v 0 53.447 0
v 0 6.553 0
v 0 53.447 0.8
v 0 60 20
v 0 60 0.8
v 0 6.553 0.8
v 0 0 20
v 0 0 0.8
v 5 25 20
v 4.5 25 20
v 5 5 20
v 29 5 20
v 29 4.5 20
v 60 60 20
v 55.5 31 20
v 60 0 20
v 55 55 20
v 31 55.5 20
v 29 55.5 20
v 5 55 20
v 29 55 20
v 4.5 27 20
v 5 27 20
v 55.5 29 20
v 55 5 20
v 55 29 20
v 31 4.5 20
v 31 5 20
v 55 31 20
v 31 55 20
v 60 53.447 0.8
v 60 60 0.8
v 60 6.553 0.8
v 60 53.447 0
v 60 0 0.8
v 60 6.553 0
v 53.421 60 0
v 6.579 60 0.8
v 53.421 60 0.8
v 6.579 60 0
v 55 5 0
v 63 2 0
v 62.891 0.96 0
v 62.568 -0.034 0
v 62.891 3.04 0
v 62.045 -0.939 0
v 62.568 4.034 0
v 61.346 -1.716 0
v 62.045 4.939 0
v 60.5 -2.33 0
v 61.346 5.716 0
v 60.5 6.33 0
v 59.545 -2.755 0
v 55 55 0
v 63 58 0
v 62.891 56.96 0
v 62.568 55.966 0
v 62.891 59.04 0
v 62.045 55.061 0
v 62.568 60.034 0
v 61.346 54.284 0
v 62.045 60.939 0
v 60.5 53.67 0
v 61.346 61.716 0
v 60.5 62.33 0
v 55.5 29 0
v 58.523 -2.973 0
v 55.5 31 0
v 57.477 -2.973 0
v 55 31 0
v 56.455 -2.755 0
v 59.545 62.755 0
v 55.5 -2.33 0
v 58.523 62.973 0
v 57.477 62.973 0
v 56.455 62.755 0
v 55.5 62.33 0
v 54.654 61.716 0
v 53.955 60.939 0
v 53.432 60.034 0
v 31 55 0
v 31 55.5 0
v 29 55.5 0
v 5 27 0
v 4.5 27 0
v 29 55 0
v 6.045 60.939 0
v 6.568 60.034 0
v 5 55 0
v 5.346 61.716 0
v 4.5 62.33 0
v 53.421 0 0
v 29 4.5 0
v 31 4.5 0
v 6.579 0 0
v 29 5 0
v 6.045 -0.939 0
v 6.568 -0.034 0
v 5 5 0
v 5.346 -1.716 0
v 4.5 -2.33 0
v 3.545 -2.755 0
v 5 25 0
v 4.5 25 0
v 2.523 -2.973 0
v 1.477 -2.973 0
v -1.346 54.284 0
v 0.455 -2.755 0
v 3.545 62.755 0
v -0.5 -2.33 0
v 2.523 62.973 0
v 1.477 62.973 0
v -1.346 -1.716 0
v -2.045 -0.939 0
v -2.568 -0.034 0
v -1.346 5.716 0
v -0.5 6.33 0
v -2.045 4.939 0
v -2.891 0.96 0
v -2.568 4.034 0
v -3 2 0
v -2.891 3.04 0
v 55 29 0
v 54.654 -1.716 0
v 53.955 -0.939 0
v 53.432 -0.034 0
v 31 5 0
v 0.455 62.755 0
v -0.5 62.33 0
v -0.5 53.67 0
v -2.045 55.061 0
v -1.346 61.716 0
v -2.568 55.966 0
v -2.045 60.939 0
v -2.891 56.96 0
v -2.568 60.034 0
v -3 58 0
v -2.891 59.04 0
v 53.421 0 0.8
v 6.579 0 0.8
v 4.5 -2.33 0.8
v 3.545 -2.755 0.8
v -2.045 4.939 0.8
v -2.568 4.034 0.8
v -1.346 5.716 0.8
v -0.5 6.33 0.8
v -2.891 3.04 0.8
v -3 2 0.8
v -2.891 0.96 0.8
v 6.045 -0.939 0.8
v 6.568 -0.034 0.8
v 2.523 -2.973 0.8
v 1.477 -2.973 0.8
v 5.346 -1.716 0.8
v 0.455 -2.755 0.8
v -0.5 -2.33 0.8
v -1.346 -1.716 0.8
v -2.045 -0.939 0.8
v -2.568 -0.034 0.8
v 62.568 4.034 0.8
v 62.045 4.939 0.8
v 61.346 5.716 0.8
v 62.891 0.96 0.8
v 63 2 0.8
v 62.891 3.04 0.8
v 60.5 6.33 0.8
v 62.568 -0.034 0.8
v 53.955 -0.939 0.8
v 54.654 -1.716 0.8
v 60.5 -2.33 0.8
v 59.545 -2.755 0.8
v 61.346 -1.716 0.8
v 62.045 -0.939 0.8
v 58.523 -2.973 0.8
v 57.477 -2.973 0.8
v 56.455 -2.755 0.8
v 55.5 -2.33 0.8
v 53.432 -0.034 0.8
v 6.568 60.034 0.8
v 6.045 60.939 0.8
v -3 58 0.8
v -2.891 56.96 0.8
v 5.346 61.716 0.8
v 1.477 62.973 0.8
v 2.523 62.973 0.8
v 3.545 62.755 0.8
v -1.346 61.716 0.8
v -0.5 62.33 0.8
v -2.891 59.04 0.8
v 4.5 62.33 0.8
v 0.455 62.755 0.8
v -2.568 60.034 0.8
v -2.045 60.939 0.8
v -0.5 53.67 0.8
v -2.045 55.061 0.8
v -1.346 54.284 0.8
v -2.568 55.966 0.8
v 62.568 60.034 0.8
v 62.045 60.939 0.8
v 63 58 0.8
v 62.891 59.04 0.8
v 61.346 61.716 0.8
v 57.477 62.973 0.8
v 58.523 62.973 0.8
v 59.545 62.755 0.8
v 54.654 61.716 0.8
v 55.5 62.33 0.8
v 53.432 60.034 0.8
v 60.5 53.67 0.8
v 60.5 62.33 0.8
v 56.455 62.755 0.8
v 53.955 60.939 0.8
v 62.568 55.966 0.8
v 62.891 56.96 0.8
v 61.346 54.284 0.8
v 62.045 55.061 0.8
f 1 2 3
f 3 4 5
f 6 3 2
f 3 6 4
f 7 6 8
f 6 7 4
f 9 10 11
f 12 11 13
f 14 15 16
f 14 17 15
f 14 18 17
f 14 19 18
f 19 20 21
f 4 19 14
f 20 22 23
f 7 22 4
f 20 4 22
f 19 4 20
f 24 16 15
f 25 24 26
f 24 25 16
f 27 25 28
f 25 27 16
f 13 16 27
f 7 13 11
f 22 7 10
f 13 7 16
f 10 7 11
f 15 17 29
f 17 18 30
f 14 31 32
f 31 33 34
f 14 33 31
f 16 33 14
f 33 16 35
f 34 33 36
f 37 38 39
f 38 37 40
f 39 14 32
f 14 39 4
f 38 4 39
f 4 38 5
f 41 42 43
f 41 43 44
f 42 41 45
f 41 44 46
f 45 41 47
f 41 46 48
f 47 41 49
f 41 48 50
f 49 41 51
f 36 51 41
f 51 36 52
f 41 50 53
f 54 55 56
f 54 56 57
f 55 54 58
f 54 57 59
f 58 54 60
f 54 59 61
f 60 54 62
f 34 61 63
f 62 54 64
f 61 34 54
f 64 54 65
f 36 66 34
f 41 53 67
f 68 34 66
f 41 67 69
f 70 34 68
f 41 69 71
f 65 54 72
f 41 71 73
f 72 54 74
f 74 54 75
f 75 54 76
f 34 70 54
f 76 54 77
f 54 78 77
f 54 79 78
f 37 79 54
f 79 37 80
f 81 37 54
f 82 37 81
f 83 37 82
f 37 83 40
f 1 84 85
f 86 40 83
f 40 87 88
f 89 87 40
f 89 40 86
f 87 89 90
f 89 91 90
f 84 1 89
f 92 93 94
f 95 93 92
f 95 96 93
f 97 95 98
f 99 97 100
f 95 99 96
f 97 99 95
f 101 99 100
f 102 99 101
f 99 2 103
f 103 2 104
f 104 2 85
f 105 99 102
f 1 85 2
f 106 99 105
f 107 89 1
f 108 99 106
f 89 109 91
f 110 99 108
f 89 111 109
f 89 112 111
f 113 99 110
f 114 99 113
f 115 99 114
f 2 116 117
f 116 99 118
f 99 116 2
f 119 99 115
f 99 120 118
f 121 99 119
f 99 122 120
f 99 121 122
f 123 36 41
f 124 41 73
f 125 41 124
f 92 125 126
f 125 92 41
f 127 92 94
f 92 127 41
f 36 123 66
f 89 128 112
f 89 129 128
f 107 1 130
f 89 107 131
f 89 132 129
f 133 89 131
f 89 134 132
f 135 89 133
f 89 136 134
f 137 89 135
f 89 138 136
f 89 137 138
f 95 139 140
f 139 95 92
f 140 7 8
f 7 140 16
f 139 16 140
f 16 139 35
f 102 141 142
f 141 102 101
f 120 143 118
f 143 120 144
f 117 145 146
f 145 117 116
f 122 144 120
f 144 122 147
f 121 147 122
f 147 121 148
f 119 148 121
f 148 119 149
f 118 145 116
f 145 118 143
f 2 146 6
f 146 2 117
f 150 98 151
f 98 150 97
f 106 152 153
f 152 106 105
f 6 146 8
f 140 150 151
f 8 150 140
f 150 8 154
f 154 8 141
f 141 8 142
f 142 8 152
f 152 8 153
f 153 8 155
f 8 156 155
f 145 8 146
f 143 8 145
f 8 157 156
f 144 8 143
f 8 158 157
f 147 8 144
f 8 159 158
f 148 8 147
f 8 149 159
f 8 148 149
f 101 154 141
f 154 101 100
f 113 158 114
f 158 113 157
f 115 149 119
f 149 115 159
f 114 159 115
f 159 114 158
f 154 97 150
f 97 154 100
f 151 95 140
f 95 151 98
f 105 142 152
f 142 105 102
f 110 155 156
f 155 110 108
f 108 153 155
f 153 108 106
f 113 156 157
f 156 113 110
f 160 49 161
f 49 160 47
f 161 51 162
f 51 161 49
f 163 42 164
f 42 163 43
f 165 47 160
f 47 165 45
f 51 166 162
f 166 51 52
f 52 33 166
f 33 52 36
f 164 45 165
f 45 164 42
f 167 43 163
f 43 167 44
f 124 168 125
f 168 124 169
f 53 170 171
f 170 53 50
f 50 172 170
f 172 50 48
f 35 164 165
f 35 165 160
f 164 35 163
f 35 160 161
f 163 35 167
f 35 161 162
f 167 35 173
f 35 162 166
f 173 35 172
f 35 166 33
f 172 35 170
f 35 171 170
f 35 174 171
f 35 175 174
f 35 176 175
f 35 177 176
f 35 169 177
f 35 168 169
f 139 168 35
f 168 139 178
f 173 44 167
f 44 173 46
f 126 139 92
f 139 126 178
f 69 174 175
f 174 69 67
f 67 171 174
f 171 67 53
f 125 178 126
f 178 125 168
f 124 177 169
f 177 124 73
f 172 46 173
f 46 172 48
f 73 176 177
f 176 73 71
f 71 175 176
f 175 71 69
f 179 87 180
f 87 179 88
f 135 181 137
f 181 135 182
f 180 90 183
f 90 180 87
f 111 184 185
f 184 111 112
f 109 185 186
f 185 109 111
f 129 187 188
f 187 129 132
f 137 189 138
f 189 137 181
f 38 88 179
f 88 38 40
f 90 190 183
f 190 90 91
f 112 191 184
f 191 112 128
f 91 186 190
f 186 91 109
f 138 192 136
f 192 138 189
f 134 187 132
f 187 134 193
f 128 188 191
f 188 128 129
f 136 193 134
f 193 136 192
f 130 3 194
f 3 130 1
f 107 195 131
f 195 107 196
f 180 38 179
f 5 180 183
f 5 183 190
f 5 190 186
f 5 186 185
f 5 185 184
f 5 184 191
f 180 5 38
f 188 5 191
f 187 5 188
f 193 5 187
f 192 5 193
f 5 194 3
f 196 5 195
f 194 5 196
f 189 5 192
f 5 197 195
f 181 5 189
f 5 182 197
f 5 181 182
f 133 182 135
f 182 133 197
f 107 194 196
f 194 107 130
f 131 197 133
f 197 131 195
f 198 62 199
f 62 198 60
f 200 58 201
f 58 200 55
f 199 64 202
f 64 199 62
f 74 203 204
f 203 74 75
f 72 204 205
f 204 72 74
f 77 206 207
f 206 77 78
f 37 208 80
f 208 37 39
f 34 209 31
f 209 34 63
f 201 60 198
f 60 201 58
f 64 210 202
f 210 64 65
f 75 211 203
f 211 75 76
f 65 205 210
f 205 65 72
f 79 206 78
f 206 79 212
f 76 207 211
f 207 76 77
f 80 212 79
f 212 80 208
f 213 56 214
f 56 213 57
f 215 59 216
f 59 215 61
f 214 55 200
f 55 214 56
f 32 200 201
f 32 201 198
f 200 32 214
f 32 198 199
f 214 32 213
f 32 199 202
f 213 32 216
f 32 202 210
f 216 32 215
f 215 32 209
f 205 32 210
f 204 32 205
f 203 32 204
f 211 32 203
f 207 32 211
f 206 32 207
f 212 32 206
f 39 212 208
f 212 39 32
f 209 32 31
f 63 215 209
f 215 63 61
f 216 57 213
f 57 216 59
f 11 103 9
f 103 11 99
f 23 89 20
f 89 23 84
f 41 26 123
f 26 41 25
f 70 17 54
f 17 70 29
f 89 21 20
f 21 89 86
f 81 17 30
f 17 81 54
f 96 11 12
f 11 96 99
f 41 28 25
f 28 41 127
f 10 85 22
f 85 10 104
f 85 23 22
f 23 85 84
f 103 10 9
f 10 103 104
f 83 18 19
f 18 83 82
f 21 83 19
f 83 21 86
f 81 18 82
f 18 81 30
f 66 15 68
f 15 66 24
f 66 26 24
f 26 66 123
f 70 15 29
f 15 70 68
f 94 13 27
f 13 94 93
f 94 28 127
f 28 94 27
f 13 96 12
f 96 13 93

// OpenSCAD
// Calibration test tower
//
// Generate STL using OpenSCAD:
//   openscad square_tower.scad -o square_tower.stl

square_width = 5;
square_size = 60;
square_height = 20;
antiwarp_height = .8;
antiwarp_radius = 5;

module square_with_anti_warp() {
    module anti_warp_cylinder() {
        cylinder(r=antiwarp_radius, h=antiwarp_height, $fs=.5);
    }
    cube([square_size, square_size, square_height]);
    dist = antiwarp_radius / 2.5;
    translate([dist, dist, 0])
        anti_warp_cylinder();
    translate([square_size-dist, dist, 0])
        anti_warp_cylinder();
    translate([dist, square_size-dist, 0])
        anti_warp_cylinder();
    translate([square_size-dist, square_size-dist, 0])
        anti_warp_cylinder();
}

module hollow_square() {
    difference() {
        square_with_anti_warp();
        translate([square_width, square_width, -1])
            cube([square_size-2*square_width, square_size-2*square_width,
                  square_height+2]);
    }
}

module notch() {
    CUT = 0.01;
    depth = .5;
    width = 1;
    translate([-depth, -width, -CUT])
        cube([2*depth, 2*width, square_height + 2*CUT]);
}

module square_with_notches() {
    difference() {
        // Start with initial square
        hollow_square();
        // Remove four notches on inside perimeter
        translate([square_width, square_size/2 - 4, 0])
            notch();
        translate([square_size/2, square_size - square_width, 0])
            rotate([0, 0, 90])
                notch();
        translate([square_size - square_width, square_size/2, 0])
            notch();
        translate([square_size/2, square_width, 0])
            rotate([0, 0, 90])
                notch();
    }
}

square_with_notches();
